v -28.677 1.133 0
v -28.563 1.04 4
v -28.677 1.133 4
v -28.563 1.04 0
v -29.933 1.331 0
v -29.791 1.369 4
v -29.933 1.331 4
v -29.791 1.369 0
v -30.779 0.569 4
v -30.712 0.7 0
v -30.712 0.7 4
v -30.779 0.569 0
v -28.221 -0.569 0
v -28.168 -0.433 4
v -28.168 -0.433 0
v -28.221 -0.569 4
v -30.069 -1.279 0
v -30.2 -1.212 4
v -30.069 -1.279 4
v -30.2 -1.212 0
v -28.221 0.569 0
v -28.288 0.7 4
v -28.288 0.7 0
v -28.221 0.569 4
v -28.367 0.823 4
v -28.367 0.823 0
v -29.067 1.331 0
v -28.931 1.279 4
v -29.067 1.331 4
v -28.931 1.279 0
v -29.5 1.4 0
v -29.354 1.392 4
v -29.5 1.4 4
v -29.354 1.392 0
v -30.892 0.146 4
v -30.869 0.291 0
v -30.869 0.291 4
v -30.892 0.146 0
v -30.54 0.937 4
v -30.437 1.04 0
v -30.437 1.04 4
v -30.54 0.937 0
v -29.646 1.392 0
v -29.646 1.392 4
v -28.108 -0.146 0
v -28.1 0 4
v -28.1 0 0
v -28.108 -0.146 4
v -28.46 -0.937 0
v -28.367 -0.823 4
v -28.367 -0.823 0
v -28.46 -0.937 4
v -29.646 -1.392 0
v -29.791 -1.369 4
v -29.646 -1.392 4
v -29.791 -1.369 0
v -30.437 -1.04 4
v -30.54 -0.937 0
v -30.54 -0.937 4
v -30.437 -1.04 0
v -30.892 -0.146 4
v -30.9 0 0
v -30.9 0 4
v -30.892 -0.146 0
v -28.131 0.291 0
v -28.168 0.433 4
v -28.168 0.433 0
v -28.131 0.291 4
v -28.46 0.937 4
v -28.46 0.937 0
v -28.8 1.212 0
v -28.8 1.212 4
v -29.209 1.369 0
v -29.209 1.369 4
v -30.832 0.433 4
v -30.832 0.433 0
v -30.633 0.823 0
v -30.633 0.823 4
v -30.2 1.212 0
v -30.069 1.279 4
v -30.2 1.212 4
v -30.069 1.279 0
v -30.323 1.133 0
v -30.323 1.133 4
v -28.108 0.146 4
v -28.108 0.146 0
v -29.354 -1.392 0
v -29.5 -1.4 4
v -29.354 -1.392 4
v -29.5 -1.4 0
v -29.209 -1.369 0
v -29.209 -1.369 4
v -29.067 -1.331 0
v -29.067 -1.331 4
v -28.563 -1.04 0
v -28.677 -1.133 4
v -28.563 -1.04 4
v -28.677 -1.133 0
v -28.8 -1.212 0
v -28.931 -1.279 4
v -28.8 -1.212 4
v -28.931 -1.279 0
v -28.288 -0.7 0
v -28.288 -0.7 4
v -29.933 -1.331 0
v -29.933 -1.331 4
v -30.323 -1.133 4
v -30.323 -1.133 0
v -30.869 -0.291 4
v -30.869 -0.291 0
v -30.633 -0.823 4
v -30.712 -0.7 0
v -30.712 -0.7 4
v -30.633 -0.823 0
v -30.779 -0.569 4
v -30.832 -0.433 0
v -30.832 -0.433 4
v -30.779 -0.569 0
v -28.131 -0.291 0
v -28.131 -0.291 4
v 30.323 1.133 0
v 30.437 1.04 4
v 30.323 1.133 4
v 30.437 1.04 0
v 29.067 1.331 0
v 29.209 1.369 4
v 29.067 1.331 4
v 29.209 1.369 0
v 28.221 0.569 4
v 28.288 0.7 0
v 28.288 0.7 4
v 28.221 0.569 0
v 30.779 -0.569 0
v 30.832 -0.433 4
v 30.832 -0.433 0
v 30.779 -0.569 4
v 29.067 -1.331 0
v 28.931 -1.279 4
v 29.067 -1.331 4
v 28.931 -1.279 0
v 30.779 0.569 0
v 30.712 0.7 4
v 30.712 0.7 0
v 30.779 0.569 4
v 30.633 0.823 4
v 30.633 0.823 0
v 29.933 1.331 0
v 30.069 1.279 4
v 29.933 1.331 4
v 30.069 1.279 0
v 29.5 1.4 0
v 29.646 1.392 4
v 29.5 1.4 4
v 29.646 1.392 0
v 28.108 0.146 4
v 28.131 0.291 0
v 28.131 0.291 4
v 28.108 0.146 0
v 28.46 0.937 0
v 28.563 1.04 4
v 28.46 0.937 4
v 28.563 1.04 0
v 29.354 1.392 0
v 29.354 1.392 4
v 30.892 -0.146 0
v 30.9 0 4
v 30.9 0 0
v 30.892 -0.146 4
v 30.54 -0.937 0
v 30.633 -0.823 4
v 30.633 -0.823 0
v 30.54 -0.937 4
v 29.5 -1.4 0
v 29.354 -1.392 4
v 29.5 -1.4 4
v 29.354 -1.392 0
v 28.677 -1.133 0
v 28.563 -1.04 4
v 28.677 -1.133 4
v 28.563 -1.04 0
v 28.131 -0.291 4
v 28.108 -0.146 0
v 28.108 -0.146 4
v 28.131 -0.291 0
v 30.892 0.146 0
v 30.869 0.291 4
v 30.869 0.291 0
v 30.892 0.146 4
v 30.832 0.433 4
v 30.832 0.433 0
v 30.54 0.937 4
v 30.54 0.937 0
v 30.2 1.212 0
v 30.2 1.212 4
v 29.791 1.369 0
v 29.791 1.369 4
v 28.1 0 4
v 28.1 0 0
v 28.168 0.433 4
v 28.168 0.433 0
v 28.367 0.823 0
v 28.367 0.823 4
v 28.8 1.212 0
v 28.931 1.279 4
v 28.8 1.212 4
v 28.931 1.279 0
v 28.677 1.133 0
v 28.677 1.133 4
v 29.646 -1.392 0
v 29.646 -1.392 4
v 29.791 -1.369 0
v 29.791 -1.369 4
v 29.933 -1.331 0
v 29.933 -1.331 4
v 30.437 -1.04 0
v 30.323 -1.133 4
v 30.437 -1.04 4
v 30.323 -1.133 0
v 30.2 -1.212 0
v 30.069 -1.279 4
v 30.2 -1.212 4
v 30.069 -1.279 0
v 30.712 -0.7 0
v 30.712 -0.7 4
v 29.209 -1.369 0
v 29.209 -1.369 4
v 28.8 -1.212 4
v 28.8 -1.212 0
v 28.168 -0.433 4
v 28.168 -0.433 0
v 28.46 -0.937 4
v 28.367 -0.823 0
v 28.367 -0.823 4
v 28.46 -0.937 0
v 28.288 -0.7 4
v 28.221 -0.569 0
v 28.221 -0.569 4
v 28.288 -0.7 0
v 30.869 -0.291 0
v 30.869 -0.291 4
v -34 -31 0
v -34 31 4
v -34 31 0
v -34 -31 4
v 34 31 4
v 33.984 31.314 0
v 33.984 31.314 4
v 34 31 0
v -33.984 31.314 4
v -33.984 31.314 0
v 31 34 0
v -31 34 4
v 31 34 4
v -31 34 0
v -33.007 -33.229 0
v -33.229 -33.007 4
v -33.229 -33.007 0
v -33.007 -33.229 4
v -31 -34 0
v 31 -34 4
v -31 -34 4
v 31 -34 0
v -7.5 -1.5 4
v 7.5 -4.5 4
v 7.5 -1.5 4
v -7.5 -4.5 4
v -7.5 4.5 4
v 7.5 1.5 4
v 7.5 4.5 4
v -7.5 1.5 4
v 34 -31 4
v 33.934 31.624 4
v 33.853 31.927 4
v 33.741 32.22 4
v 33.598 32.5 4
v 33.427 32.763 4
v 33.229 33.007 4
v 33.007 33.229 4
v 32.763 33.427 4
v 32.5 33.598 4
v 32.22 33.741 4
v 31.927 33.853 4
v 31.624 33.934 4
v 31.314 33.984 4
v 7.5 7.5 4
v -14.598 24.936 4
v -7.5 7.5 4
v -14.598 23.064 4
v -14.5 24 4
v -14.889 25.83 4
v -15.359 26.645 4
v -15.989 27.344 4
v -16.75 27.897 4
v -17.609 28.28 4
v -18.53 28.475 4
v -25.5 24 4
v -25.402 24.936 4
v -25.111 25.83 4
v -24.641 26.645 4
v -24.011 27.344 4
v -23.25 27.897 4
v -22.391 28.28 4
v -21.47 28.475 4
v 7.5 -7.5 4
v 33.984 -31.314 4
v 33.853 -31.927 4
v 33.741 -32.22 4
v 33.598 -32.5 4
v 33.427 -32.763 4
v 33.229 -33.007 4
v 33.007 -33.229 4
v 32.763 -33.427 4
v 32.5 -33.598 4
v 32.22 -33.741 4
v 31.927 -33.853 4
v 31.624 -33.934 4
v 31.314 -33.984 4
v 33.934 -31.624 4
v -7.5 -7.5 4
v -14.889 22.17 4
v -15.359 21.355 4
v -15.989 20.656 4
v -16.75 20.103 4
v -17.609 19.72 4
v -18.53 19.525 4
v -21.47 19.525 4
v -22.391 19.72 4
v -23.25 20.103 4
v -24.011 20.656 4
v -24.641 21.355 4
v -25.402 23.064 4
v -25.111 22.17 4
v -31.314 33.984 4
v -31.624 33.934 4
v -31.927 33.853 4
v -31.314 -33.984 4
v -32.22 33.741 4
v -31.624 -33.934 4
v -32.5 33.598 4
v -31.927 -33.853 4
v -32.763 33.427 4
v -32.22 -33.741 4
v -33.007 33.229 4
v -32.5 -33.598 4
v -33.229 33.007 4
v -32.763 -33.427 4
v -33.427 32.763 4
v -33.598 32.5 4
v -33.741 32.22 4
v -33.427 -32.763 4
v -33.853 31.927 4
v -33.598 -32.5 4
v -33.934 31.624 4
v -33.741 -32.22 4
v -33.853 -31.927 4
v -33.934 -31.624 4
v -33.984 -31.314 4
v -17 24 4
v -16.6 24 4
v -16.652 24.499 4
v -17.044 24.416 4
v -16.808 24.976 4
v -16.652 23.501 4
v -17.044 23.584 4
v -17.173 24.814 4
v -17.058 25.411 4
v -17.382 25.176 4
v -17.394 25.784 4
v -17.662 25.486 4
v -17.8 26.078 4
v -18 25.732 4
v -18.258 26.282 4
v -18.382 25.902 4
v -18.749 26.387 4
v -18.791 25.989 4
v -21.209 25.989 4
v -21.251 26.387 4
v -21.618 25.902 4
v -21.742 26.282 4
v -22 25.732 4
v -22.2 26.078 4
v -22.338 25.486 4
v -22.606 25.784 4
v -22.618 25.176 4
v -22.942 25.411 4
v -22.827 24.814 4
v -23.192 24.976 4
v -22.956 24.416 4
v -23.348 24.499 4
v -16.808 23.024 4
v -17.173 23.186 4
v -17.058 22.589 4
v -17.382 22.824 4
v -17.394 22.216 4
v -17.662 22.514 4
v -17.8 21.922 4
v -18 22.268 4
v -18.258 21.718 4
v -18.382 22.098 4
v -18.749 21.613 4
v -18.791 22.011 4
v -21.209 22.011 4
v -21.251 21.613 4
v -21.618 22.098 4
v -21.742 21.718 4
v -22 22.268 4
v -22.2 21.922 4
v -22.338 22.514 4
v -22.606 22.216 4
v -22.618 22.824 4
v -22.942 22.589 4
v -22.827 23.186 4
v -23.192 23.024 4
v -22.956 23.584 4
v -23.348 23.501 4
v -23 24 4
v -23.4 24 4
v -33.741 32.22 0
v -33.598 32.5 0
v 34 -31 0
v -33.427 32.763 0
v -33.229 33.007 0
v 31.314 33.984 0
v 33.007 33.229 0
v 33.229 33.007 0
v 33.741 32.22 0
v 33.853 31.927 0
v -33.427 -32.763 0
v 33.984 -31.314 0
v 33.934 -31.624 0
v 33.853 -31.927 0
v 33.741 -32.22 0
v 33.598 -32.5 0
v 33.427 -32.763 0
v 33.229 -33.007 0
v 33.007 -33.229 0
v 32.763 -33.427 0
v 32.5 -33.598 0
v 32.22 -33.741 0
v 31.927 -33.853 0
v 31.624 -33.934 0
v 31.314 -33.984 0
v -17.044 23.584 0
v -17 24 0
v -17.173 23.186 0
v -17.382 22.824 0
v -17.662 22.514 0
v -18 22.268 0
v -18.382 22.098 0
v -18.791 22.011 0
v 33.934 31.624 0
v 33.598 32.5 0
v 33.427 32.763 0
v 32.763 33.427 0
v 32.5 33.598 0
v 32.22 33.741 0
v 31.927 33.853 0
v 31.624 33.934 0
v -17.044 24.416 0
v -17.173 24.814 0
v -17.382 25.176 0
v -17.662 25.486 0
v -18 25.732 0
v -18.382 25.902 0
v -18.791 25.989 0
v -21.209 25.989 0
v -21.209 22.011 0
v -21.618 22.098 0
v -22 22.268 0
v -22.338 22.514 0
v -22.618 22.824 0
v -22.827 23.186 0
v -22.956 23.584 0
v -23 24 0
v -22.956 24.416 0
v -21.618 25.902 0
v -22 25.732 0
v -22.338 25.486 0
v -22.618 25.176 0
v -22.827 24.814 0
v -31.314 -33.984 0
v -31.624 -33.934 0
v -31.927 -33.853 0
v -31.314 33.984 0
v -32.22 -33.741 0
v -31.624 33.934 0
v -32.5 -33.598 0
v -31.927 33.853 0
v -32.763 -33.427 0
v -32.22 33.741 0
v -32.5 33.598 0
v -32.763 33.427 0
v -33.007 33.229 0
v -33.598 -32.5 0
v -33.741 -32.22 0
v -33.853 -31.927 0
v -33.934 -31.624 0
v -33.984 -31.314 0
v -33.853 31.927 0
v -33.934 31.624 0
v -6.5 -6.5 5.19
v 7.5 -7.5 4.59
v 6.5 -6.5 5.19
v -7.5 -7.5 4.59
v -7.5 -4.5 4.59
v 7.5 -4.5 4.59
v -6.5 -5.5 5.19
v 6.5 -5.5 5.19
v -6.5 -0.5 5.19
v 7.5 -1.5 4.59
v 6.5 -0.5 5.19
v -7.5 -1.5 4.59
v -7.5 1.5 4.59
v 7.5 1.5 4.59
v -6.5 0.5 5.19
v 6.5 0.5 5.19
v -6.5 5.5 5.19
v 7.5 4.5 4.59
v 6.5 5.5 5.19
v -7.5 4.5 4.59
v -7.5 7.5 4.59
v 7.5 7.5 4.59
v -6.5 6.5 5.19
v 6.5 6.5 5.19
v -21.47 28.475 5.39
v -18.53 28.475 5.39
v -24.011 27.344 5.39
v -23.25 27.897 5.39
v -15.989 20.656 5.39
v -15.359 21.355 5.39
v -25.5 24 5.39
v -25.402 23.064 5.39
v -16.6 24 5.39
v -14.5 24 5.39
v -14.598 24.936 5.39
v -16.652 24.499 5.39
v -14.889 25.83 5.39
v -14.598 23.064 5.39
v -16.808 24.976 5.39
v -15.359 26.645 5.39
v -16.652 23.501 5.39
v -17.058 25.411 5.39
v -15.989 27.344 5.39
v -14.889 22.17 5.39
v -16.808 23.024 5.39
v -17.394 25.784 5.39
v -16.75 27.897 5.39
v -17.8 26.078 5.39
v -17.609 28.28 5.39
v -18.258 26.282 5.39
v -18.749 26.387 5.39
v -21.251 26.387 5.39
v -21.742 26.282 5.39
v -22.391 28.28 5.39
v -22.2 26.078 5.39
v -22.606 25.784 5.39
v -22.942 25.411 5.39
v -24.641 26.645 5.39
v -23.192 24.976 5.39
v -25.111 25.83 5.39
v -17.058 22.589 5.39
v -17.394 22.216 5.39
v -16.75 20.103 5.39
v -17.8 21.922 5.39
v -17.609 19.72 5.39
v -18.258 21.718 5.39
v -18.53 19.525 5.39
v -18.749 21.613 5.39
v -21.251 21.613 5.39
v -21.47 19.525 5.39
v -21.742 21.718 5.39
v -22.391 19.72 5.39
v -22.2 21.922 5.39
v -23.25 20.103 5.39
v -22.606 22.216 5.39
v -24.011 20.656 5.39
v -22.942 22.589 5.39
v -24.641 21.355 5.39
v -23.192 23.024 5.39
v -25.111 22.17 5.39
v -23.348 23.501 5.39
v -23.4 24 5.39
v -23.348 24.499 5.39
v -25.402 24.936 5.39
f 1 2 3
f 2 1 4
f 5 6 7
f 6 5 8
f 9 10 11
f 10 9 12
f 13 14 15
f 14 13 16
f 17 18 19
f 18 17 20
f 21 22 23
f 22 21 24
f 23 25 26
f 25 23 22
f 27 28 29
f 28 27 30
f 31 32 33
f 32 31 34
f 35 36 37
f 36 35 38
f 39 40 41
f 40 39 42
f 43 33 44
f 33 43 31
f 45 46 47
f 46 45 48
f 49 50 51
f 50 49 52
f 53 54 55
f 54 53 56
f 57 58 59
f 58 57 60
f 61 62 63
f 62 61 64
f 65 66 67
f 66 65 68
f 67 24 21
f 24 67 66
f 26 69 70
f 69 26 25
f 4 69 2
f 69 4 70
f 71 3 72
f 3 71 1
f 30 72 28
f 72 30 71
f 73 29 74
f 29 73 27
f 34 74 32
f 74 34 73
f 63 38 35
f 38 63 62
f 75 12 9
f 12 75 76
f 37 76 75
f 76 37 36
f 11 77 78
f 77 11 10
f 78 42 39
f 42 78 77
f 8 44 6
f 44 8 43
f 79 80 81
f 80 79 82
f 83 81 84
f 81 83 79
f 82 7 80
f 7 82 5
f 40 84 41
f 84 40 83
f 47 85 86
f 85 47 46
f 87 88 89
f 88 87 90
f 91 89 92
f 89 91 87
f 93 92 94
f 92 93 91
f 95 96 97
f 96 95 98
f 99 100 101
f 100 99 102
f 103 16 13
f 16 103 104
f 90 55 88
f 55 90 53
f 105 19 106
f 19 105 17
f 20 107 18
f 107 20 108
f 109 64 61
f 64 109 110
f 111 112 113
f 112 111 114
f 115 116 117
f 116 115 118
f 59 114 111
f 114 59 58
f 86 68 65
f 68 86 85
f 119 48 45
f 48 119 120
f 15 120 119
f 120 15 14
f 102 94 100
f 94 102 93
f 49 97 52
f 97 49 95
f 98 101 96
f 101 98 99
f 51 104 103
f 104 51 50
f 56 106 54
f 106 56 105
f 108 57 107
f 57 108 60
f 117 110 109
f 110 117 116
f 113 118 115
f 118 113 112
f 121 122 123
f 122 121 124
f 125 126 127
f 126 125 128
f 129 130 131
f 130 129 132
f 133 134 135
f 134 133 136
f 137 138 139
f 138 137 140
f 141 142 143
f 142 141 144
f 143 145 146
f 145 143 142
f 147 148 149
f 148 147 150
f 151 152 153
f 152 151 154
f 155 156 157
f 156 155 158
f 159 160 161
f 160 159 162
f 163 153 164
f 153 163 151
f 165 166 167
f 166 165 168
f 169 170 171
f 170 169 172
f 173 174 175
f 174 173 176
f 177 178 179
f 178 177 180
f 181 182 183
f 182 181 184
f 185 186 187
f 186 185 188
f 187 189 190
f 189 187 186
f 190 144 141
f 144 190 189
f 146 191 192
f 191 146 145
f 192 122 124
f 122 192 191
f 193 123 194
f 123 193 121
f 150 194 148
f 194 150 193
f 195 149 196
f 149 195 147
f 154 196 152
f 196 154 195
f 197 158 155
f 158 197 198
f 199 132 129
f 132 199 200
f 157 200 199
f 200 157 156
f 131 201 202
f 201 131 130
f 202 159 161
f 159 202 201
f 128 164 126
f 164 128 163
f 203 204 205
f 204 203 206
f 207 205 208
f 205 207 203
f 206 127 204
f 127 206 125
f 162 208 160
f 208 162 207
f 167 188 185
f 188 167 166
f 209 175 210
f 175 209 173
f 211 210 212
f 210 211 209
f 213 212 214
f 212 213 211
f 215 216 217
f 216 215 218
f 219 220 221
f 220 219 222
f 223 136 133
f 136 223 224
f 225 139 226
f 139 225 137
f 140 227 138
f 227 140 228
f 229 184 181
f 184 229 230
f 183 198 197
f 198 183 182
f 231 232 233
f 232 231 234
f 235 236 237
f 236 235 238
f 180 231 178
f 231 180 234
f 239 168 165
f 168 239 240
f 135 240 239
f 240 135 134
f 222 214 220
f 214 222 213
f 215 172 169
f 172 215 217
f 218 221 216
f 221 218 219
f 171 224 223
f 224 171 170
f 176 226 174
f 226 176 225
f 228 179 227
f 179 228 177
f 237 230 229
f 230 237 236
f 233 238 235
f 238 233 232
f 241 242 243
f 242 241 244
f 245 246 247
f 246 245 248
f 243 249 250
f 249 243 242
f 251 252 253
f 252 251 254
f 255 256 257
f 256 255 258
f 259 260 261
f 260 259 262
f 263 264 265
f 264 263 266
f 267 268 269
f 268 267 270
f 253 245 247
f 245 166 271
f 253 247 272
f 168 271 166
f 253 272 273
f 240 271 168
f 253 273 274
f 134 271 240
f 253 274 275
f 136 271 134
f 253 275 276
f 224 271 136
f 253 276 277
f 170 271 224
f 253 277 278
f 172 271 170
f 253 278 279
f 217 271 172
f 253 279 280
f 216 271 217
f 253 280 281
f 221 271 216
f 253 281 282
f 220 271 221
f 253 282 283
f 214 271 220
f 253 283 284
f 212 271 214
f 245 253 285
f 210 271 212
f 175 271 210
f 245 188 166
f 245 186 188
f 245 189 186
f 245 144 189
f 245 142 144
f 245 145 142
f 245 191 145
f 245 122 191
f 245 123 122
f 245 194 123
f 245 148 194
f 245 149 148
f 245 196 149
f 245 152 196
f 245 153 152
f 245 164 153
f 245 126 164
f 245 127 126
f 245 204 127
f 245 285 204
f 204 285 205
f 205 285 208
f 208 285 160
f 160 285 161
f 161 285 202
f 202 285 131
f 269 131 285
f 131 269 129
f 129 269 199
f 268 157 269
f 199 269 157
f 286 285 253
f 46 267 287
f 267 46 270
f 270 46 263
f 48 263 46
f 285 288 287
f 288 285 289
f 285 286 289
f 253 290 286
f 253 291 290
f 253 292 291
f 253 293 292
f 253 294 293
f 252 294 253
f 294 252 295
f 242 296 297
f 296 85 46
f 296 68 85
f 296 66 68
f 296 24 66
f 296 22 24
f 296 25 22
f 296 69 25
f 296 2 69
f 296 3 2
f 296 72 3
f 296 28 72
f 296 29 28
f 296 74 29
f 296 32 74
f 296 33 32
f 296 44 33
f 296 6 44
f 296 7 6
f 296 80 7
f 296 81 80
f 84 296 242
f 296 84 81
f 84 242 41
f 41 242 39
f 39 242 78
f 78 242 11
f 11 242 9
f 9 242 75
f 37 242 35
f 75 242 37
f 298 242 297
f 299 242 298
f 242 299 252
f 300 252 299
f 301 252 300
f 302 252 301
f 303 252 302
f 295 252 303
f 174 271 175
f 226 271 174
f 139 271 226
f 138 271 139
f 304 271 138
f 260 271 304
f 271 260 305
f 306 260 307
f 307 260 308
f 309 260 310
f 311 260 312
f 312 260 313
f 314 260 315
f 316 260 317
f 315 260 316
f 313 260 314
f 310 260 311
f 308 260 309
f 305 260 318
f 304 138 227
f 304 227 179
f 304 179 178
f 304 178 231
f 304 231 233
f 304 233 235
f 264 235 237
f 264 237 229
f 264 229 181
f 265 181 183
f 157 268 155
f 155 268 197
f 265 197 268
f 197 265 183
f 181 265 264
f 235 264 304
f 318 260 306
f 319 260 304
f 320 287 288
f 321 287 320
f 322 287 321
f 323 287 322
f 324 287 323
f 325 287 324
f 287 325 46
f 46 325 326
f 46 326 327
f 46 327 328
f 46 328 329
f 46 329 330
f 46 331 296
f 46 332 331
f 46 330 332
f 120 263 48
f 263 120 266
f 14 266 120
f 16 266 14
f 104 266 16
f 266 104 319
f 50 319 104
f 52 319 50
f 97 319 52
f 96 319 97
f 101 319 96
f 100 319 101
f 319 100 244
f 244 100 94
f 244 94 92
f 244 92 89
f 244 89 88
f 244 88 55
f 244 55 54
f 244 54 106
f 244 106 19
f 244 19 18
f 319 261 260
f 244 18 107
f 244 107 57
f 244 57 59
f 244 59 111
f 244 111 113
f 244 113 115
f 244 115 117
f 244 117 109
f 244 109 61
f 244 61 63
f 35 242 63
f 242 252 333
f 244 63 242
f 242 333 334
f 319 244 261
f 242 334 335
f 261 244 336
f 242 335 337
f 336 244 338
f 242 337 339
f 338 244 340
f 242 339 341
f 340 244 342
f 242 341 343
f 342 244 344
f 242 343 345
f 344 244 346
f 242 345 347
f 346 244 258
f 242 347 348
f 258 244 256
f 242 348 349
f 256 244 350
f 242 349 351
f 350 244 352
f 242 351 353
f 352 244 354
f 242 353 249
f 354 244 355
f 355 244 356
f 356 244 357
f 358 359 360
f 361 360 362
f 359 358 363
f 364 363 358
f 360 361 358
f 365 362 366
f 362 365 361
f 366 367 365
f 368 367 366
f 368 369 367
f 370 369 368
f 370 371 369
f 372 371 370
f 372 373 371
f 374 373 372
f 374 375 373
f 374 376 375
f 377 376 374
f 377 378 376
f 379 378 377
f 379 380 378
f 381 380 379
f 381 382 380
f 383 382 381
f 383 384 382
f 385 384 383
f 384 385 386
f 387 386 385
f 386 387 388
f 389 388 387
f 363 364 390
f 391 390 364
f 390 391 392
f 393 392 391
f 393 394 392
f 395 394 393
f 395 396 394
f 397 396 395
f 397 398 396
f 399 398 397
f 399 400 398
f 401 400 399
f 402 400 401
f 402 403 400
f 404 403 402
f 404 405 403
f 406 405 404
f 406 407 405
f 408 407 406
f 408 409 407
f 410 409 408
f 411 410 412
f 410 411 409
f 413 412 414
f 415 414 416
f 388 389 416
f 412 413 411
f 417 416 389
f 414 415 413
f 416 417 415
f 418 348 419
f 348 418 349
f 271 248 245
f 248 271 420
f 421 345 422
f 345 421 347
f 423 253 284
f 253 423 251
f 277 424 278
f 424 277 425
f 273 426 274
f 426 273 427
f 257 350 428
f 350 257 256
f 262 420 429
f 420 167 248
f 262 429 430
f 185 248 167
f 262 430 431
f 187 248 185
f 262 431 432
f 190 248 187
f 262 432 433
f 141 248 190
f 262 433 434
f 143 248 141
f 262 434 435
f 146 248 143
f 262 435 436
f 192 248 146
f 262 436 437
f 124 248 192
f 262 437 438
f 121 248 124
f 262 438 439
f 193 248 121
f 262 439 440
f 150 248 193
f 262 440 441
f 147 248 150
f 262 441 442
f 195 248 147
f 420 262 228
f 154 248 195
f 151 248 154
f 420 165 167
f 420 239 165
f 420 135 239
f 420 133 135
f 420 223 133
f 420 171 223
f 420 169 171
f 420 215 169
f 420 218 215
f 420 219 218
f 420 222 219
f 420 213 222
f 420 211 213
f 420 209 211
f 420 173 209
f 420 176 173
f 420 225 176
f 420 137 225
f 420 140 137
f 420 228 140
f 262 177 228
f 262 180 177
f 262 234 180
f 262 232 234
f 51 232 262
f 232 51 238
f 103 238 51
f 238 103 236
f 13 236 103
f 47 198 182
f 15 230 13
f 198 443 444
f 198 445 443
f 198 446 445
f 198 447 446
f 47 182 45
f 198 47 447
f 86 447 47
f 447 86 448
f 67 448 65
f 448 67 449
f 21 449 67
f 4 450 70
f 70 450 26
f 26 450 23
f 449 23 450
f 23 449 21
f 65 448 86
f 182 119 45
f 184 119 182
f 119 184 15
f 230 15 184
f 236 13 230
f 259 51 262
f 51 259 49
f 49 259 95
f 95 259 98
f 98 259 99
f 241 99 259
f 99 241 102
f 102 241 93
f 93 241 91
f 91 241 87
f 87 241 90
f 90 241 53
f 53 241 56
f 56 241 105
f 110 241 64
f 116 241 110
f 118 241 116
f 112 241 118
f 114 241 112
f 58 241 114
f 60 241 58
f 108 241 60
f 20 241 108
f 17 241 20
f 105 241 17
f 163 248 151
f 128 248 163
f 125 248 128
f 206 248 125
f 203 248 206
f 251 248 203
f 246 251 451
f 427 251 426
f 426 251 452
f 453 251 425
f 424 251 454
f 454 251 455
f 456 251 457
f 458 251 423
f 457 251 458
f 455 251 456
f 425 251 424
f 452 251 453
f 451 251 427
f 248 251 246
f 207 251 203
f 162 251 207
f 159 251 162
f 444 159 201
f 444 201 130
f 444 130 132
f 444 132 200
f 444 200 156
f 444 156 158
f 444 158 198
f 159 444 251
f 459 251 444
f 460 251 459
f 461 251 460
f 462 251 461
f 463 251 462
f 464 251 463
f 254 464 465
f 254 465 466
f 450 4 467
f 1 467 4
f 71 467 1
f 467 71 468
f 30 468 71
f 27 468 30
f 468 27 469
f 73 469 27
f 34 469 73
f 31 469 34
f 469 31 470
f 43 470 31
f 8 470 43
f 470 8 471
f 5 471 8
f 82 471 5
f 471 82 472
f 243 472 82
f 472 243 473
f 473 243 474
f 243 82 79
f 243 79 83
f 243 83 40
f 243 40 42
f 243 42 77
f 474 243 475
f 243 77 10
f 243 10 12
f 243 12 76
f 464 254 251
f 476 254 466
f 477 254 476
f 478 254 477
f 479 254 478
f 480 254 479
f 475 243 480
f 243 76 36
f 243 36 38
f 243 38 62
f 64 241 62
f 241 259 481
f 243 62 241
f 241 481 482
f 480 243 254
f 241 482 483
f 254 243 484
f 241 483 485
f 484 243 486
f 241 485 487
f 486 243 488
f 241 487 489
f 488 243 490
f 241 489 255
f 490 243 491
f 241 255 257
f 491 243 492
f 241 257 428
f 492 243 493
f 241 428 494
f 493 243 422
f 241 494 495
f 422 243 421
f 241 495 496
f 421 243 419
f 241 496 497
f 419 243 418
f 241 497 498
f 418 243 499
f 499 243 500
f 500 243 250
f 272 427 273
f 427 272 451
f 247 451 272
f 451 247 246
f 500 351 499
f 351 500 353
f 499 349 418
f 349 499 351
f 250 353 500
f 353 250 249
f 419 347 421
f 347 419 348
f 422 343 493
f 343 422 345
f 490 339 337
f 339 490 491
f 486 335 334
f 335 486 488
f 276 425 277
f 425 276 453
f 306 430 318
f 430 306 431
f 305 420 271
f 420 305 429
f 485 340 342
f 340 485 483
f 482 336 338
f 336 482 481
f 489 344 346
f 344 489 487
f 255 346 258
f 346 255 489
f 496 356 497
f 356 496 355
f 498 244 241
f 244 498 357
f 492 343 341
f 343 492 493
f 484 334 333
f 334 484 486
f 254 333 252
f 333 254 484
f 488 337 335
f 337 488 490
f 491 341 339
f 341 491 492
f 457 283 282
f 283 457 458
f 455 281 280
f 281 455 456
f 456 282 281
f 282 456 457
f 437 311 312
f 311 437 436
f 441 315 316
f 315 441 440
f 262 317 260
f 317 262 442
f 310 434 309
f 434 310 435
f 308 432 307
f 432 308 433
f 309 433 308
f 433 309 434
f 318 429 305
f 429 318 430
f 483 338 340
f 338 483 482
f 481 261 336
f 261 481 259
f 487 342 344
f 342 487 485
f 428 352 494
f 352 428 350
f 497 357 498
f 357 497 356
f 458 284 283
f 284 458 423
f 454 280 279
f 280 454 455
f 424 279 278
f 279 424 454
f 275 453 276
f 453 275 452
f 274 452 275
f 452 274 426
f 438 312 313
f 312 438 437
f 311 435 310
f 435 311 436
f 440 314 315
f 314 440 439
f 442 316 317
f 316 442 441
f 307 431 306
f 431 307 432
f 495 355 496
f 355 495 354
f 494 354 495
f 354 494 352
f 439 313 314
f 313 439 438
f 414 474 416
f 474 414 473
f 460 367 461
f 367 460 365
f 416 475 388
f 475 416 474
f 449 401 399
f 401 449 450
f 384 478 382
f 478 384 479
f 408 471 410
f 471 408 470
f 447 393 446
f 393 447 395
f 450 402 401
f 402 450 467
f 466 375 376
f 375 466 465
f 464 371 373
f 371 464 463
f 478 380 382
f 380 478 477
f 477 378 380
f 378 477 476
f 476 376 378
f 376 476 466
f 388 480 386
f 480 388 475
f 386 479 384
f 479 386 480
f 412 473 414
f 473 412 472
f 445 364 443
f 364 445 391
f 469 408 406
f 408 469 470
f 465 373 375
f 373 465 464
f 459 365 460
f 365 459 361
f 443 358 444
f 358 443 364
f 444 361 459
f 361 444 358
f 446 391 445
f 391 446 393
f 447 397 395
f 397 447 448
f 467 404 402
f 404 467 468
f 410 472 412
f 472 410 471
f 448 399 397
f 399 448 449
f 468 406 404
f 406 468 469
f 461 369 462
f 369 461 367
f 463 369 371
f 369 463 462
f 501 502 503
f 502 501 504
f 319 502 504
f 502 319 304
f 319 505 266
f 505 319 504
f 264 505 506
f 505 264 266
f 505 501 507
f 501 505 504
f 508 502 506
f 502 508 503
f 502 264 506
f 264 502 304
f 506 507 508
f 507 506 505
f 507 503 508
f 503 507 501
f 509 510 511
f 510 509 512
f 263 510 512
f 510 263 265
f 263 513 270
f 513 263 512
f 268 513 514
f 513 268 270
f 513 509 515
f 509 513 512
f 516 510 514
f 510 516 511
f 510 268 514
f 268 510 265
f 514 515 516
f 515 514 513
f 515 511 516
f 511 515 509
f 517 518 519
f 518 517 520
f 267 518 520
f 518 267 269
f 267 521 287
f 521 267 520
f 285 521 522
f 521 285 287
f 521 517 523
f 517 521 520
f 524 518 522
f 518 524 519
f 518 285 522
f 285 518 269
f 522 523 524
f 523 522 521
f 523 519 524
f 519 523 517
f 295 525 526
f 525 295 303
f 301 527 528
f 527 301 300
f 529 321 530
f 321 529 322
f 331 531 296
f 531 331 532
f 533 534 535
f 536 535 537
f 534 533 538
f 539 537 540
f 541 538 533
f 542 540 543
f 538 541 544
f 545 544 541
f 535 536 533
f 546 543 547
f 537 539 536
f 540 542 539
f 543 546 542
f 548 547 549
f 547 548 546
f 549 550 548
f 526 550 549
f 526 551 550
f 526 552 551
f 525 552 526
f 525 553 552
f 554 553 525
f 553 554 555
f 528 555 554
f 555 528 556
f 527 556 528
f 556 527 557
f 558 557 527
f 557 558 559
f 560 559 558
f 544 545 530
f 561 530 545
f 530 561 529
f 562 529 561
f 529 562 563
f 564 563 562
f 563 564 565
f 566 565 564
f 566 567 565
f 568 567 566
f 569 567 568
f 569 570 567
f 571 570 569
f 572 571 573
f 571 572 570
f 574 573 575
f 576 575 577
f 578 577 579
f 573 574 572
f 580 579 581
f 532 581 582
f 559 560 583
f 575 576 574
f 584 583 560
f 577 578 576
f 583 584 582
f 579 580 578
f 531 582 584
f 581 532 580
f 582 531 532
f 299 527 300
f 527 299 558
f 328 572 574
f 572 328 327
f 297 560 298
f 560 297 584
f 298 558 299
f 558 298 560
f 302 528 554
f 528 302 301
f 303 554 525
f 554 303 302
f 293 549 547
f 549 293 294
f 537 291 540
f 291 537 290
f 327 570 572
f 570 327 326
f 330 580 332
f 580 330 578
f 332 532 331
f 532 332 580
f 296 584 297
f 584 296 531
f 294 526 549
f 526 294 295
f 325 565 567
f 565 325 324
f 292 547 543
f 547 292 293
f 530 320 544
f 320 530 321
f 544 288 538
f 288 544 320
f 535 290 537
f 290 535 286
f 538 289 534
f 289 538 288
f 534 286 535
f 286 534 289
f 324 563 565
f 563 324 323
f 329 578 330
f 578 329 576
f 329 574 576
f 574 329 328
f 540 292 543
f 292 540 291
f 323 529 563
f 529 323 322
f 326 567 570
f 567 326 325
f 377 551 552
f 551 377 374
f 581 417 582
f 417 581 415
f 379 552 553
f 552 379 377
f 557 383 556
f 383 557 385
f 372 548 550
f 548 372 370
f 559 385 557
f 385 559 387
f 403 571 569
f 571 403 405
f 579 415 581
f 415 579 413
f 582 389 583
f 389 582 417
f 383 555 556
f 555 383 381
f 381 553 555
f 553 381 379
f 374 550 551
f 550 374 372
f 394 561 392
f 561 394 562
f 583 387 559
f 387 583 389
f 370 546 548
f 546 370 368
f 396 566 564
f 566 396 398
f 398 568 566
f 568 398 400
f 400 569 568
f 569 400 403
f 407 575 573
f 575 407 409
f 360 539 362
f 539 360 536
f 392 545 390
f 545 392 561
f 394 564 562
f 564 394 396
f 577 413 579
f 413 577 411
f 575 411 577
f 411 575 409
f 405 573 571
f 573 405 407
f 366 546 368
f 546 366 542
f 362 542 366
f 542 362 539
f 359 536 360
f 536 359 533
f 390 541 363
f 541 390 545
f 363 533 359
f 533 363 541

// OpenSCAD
// file: dock_interface.scad
// Shared mechanical receiver envelope for every Braillix dock face.
// Electrical contact hardware is deliberately NOT defined here: the current
// direct-GPIO cell needs an 8-conductor harness, while a future four-contact dock
// requires a local expander and contacts rated for aggregate downstream current.
dock_receiver_w = 10.0;
dock_receiver_h = 8.0;
dock_center_z   = 31.0;
dock_wall_t     = 4.0;
// file: stack_options.scad
// =========================================================
// BRAILLIX COORDINATED STACK OPTIONS
//
// Default exports remain the audited legacy stack. Render the non-destructive
// shaft-preserving candidate with:
//
//   openscad -D stack_repair_raise=4 ...
//
// The 4 mm value is not arbitrary. With the motor mounting face at world z=41,
// the measured Ø9 x 2 mm collar ends at z=43. A 4 mm cam hub seated on that
// collar puts the cam underside at z=47 and its flat surface at z=49: exactly
// 4 mm above the legacy cam-flat datum. Base standoffs, top plate, cell shell,
// and pod therefore move together by the same amount.
//
// This is a candidate until the real cam/linkage/spring and Hall tests pass.
// =========================================================

stack_repair_raise = is_undef(stack_repair_raise) ? 0 : stack_repair_raise;

assert(stack_repair_raise == 0 || stack_repair_raise == 4,
       "stack_repair_raise must be 0 (legacy audit) or 4 (Option A candidate)");

stack_option_a = stack_repair_raise == 4;
// main file
// =========================================================
// COMPONENT: ESP32 BRAIN POD — Top Lid
// Revision 3.0 — Matching Brick
// Updated 2026-05-31
//
// PRINTABLE PART 2 of 2. Pair with esp32_pod_shell.scad.
//
// Lid screws into shell bosses at x=±25 (F14 fix).
// Barrel jack hole on the lid near -X end.
//
// Print orientation: flat (face down).
// Material: PETG.
// =========================================================

include <esp32_pod_params.scad>

shell_h = pod_height - lid_h;

// --- OVER-CAP DIMENSIONS (v6.2) ---
// Lid is now an over-cap: X flush with pod outer (64, ±32 — NO skirt on ±X so the
// +X dock face stays flat), Y 70 (±35 = 1mm overhang each side) with a downward
// skirt on ±Y only. Underside at z=0, top at z=lid_h(4).
// v7.5: every one of these was a hard-coded number that happened to match
// pod_length=64 / pod_width=68. Lengthening the pod to 68 would have left them
// silently wrong. They are now derived, so the lid tracks the shell automatically.
lid_cap_x        = pod_length;            // 68 — flush, no overhang on dock faces
// v8.1: flush on all four sides (was pod_width + 2 with a ±Y skirt). Same reasoning
// as top_plate.scad — ±X had to stay flush for the dock face, so the lip only ran
// front/back and its skirt stopped short of the corners, leaving a stepped 1mm
// ledge. The two M2 screws locate the lid, so the skirt earned nothing.
lid_cap_y        = pod_width;             // 68 — flush, no overhang

// The old 11mm-deep guessed panel-jack cradle was removed. It made the slicer
// print the lid in mid-air with supports off and could not retain the owned pigtail.
// --- MODULES ---

// Over-cap body: X flush (±32), Y overhang (±35), rounded corners match pod fillet.
module lid_cap_body() {
    pod_rounded_box(lid_cap_x, lid_cap_y, lid_h, pod_fillet);
}

// v8.1: yy_skirt() removed — the lid is flush on all four sides now.

module power_cable_cutout(extra = 0, z0 = -1, cut_h = lid_h + 2) {
    // Rounded 6x4 slot. Only the cable passes through; the connector stays outside.
    dx = (power_cable_slot_w - power_cable_slot_h) / 2;
    hull()
        for(sx = [-1, 1])
            translate([power_cable_x + sx * dx, power_cable_y, z0])
                cylinder(d=power_cable_slot_h + extra, h=cut_h, $fn=30);
}
module lid_screw_holes() {
    // 2× M2 clearance holes — align with shell bosses at x=±25
    for(sx = [-1, 1]) {
        translate([sx * lid_screw_x, 0, -1])
            cylinder(d=lid_screw_d, h=lid_h + 2);
    }
}

// --- RAISED TACTILE FEATURES (v6.0) ---

module pod_id_marker() {
    // v6.1: was a braille ⠿ with 1.4mm dots — printed as mush on FDM (raised features
    // <2.5mm fail on a 0.4mm nozzle). Now 3 bold parallel ridges so a blind user can
    // tell the BRAIN POD apart from the identical-looking cells by touch.
    // Each ridge: 3mm wide × 1.2mm proud × 15mm long, rounded top, 6mm apart.
    for(ry = [-6, 0, 6])
        translate([0, ry, lid_h - 0.01])
            hull() {
                translate([-7.5, -1.5, 0]) cube([15, 3, 0.6]);
                translate([-6.5, -0.5, 0]) cube([13, 1, 1.2]);
            }
}

module power_cable_marker() {
    // 1.4mm-proud tactile oval; connector body remains outside the pod.
    difference() {
        power_cable_cutout(5.0, lid_h - 0.01, 1.4);
        power_cable_cutout(0.8, lid_h - 1, 3.4);
    }
}

// --- MAIN LID MODULE ---

module esp32_pod_lid() {
    union() {
        difference() {
            union() {
                lid_cap_body();   // over-cap: flush ±34 on all four sides
            }
            power_cable_cutout();
            lid_screw_holes();
        }
        pod_id_marker();
        power_cable_marker();
        // Tie the pigtail to the shell tie post; no unsupported cradle is required.
    }
}

// --- RENDER ---
esp32_pod_lid();
